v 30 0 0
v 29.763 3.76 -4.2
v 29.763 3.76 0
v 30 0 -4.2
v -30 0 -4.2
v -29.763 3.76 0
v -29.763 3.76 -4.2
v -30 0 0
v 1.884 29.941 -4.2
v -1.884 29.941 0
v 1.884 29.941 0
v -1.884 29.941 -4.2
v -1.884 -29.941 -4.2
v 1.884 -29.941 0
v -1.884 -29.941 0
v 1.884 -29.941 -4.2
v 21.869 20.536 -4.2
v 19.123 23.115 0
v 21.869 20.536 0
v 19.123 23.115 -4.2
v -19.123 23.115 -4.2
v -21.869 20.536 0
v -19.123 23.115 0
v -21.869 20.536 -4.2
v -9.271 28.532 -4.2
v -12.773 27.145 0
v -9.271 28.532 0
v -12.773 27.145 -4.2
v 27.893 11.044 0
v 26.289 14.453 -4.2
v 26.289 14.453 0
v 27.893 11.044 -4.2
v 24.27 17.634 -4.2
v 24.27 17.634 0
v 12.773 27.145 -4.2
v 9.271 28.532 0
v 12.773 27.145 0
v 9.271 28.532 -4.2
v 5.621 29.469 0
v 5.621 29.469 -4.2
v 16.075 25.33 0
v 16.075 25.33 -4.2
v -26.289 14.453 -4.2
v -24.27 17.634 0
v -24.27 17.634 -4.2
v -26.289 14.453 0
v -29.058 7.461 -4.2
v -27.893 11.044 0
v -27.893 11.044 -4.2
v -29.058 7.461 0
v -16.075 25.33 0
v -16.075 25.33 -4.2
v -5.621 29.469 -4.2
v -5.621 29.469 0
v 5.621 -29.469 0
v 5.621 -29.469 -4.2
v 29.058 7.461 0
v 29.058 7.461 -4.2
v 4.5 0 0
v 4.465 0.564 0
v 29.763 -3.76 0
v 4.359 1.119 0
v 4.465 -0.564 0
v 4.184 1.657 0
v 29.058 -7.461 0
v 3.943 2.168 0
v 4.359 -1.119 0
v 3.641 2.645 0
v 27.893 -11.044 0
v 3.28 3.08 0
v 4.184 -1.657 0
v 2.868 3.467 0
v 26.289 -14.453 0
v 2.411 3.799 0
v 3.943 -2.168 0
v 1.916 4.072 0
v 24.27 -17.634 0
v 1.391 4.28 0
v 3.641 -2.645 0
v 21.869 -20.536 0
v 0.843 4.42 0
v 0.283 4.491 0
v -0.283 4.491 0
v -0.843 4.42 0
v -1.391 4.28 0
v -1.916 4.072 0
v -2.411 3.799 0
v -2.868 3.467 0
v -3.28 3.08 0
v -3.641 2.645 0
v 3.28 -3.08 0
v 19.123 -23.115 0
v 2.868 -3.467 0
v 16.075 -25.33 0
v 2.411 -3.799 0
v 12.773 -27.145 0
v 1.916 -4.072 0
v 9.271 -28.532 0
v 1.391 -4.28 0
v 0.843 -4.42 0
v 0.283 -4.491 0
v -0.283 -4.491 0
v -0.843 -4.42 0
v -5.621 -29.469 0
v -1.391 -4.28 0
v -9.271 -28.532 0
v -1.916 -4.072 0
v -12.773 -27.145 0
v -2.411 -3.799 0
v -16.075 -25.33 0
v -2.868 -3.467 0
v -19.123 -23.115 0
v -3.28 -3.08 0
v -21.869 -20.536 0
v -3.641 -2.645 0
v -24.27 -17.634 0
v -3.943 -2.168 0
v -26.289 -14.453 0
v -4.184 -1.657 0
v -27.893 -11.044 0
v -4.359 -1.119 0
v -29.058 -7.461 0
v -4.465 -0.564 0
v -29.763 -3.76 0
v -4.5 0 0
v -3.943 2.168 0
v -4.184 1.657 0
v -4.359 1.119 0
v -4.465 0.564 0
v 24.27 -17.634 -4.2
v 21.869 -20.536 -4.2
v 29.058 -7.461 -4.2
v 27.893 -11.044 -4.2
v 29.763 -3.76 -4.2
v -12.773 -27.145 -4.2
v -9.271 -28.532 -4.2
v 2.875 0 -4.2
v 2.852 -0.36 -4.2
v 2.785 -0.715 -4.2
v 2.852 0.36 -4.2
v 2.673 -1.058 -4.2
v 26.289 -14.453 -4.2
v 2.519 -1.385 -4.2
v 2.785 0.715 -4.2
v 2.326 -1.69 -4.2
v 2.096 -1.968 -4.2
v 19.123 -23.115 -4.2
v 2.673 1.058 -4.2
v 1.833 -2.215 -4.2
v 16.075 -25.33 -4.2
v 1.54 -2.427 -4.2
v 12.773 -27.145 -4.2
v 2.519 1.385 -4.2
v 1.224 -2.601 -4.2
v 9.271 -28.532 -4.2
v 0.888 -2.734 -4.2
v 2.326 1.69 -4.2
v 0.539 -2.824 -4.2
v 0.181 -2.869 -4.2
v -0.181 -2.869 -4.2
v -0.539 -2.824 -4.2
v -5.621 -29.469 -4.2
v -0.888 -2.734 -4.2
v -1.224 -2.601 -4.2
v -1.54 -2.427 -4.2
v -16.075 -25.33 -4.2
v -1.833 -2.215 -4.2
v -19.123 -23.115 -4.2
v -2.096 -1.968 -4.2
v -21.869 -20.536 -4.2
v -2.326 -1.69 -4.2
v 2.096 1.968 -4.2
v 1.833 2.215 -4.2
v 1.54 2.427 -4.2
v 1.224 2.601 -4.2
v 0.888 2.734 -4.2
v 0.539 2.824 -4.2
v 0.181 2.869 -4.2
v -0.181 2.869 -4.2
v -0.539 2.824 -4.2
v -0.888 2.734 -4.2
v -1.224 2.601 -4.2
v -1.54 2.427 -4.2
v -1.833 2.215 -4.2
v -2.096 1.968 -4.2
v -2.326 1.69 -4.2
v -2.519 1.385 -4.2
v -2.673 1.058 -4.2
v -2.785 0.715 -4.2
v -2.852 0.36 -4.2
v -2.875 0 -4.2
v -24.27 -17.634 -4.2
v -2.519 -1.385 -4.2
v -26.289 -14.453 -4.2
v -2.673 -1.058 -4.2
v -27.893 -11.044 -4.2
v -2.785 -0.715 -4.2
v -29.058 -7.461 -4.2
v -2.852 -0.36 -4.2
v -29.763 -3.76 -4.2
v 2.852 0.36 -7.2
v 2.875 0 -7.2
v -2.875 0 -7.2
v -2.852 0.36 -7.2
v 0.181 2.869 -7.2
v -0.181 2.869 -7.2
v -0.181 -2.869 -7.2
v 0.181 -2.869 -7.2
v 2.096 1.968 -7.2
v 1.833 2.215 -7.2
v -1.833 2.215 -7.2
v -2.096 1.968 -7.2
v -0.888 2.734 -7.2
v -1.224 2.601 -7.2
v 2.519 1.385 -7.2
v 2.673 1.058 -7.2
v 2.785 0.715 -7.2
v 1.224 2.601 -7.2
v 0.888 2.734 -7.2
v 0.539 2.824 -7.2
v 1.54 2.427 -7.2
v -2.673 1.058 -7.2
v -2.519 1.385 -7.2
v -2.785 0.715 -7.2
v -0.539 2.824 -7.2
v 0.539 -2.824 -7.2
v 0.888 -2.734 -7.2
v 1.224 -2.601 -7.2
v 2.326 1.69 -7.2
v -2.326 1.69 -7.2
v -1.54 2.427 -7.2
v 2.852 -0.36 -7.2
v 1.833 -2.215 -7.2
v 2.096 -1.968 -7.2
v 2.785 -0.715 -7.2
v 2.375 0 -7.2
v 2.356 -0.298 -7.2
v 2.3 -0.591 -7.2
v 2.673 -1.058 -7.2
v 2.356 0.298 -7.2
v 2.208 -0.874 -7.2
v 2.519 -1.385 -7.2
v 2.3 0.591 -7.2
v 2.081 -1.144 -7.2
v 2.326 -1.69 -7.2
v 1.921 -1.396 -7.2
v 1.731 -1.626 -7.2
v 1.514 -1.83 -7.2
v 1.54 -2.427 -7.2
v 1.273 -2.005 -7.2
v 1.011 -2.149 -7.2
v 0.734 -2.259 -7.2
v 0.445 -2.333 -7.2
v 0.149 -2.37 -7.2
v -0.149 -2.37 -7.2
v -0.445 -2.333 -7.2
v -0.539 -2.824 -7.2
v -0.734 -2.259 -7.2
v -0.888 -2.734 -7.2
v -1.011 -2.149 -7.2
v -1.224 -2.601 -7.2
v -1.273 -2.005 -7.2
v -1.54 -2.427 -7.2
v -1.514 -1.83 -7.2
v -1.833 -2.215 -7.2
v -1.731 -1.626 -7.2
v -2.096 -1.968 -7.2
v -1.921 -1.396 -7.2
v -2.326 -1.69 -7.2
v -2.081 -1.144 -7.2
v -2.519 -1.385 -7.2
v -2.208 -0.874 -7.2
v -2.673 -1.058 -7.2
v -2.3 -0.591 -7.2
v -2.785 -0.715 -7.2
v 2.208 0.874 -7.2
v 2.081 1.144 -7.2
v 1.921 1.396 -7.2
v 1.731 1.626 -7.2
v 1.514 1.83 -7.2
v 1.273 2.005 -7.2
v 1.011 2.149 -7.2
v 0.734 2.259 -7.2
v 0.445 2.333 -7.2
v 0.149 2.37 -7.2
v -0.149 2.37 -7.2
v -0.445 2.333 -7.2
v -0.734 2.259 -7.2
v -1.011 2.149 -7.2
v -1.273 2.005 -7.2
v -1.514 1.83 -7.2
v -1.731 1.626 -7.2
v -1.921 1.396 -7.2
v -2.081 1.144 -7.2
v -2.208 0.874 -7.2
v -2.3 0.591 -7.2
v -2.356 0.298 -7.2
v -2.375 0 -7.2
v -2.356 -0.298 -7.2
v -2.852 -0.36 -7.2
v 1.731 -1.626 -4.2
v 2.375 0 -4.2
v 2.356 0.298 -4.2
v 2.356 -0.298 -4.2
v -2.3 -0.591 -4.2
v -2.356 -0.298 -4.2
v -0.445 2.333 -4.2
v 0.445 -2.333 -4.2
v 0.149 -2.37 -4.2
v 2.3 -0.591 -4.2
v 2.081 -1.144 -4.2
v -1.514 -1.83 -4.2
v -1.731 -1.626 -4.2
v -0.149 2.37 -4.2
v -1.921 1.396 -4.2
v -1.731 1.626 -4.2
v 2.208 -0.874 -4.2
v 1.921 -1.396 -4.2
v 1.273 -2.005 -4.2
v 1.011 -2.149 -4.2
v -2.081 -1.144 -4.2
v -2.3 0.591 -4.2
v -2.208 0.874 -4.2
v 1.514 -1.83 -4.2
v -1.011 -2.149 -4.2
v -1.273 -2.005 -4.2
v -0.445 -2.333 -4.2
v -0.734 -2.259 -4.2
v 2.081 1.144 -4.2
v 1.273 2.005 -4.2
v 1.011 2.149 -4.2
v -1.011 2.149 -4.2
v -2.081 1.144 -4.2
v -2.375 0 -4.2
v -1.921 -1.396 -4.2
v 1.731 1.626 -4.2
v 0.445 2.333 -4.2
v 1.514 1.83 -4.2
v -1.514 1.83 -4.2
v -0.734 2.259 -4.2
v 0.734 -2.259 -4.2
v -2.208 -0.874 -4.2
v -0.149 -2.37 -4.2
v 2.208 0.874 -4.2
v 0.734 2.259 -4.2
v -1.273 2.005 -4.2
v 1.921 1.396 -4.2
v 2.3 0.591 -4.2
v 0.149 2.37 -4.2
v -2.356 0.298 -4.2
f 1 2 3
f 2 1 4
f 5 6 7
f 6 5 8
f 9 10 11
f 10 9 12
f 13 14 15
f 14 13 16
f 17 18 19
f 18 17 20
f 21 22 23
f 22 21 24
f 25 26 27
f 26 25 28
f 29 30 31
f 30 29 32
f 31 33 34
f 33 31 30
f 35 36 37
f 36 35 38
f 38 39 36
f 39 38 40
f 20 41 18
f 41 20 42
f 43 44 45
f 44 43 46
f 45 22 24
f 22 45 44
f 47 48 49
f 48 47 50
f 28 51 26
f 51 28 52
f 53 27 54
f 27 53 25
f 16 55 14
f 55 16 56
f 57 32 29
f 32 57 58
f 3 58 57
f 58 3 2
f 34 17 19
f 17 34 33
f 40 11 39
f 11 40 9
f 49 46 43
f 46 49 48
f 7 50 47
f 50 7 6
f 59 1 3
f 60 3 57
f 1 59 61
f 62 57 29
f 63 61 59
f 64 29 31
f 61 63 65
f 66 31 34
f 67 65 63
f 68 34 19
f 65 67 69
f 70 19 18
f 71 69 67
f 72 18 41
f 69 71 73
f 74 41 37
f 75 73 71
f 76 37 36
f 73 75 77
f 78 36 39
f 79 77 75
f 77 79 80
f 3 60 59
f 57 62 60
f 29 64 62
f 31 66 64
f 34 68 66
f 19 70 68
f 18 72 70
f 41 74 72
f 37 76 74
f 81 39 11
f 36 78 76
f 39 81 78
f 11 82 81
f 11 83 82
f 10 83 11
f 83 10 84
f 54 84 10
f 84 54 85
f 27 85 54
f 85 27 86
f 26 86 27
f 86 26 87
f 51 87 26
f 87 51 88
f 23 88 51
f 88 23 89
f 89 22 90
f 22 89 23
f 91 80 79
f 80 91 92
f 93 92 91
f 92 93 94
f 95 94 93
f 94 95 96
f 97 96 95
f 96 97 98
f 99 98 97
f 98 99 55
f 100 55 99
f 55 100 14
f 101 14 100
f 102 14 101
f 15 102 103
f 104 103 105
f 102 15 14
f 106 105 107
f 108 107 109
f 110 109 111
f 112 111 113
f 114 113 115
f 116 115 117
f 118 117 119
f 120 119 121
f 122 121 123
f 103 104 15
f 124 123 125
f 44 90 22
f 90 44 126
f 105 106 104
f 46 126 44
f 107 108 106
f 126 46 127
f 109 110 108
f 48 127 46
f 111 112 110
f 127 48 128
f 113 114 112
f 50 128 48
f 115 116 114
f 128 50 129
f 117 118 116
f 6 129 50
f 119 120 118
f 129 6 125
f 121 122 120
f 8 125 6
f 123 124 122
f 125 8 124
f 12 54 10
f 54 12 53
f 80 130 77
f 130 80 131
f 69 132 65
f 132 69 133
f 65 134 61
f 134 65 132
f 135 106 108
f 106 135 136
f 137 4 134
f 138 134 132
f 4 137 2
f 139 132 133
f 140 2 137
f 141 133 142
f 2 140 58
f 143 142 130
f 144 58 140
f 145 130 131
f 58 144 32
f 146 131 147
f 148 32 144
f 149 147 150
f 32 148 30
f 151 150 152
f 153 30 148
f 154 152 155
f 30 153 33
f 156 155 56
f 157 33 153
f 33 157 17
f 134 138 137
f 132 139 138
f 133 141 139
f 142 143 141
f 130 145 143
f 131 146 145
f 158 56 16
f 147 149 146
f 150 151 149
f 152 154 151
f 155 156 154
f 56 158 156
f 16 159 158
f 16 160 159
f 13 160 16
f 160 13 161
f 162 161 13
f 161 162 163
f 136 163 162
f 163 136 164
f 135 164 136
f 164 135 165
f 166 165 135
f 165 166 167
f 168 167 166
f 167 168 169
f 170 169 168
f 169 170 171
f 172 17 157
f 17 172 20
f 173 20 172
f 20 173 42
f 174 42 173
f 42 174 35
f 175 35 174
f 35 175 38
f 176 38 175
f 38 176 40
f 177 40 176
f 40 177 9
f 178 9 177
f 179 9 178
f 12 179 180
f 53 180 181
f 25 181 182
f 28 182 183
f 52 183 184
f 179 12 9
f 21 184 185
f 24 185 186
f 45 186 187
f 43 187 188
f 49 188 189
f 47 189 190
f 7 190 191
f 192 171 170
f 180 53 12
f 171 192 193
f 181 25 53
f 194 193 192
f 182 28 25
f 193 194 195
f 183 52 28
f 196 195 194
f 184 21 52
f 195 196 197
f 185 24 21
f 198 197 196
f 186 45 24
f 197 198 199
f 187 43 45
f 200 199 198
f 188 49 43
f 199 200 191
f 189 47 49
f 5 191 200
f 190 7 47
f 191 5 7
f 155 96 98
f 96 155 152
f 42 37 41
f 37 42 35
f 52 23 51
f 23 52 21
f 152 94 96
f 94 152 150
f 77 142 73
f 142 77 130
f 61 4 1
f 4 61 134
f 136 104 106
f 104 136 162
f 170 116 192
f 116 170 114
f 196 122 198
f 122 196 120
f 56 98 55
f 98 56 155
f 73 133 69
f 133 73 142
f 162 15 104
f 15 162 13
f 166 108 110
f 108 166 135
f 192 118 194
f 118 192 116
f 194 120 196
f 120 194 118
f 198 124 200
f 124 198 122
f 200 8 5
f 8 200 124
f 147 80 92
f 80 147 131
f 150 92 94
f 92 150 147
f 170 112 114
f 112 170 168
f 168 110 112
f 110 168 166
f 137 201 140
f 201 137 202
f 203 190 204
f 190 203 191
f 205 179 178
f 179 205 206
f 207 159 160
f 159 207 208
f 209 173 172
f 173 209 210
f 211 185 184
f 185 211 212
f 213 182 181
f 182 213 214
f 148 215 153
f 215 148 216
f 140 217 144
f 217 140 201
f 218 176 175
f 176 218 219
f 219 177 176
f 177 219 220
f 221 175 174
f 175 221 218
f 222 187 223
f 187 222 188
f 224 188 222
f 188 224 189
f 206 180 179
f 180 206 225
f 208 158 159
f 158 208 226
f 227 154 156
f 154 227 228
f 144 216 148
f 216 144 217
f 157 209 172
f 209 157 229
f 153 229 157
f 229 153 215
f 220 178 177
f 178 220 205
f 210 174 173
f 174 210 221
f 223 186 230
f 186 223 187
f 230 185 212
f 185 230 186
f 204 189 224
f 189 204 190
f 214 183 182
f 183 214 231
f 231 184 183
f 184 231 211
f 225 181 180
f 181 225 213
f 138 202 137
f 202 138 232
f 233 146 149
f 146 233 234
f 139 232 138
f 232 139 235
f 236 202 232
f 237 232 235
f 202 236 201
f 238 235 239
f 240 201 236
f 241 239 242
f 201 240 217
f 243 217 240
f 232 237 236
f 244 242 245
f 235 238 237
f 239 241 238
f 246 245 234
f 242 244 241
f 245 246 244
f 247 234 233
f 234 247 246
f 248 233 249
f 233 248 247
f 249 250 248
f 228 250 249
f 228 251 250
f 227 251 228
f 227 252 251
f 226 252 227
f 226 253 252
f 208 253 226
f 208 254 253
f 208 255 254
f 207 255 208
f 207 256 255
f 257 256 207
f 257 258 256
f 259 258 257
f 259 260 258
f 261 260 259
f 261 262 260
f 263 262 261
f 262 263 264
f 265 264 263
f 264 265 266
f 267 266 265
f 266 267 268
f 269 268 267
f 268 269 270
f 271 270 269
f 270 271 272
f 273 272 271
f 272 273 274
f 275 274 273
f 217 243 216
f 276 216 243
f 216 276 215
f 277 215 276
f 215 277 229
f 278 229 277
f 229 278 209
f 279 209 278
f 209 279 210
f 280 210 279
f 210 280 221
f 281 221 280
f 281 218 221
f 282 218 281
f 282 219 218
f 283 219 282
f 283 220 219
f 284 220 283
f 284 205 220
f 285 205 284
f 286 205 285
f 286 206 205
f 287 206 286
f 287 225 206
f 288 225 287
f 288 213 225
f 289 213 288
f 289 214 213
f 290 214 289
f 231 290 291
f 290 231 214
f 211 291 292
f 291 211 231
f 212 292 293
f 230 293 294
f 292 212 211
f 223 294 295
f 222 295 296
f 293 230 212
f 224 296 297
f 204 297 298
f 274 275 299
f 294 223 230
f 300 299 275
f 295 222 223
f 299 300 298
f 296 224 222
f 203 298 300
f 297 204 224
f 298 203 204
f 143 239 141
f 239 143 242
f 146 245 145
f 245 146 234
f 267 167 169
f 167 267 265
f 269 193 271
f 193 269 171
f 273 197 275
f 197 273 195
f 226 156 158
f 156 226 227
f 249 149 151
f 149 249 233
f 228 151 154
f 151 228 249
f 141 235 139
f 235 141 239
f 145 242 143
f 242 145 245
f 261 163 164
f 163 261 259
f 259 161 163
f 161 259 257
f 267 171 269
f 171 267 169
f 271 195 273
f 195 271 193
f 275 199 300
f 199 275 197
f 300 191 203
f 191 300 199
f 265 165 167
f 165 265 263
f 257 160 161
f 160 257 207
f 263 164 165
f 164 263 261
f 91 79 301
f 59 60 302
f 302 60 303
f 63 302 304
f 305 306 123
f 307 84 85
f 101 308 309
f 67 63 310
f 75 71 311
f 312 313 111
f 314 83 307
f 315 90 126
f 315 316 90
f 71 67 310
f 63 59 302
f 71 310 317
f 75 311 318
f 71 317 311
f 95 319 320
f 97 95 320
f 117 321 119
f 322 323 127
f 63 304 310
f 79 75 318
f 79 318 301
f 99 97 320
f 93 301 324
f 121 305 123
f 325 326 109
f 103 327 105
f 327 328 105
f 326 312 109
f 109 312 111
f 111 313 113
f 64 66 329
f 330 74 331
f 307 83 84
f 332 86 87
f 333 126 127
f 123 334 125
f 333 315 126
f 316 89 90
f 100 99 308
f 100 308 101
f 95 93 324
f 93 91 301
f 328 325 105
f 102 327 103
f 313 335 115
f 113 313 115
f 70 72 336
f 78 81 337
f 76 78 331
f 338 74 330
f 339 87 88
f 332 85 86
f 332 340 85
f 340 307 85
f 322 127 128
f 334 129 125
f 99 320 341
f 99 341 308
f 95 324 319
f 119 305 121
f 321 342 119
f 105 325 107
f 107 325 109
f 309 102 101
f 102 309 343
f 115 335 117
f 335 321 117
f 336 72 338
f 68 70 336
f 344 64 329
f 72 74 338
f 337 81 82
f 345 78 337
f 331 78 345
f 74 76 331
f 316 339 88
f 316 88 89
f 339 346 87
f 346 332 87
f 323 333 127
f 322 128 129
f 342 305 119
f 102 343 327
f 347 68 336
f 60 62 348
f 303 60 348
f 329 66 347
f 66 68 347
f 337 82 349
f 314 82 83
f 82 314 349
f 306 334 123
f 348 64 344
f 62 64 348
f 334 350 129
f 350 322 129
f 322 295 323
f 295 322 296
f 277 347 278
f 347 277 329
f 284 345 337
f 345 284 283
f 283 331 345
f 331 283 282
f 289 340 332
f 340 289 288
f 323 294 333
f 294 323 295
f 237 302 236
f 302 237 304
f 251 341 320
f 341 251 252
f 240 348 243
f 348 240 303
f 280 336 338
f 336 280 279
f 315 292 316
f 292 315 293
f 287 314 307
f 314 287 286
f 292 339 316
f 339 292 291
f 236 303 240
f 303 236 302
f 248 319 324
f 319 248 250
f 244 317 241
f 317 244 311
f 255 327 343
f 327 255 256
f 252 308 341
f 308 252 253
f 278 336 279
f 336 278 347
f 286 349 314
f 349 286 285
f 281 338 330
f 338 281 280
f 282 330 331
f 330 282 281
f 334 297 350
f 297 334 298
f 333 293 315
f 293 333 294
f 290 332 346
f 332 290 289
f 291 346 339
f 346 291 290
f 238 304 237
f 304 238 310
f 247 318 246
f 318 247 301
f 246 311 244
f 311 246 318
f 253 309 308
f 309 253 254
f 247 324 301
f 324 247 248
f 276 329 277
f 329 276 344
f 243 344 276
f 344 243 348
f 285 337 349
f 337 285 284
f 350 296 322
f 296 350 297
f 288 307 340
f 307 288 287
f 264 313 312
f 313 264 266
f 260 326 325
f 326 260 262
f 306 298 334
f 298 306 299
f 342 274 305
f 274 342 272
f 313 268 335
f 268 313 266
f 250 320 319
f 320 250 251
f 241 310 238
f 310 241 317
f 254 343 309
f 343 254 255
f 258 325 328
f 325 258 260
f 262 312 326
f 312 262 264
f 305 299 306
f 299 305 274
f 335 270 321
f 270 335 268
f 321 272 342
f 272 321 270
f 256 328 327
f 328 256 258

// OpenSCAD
$fn = 50;


difference() {
	union() {
		translate(v = [0, 0, -4.2000000000]) {
			cylinder(h = 4.2000000000, r = 30.0000000000);
		}
		translate(v = [0, 0, -7.2000000000]) {
			cylinder(h = 7.2000000000, r = 2.8750000000);
		}
	}
	union() {
		translate(v = [0, 0, 0]) {
			rotate(a = [0, 0, 0]) {
				difference() {
					union() {
						translate(v = [0, 0, -7.2000000000]) {
							cylinder(h = 7.2000000000, r = 2.2500000000);
						}
						translate(v = [0, 0, -4.2000000000]) {
							cylinder(h = 4.2000000000, r1 = 2.3750000000, r2 = 4.5000000000);
						}
						translate(v = [0, 0, -7.2000000000]) {
							cylinder(h = 7.2000000000, r = 2.3750000000);
						}
						translate(v = [0, 0, -7.2000000000]) {
							cylinder(h = 7.2000000000, r = 2.2500000000);
						}
					}
					union();
				}
			}
		}
	}
}
